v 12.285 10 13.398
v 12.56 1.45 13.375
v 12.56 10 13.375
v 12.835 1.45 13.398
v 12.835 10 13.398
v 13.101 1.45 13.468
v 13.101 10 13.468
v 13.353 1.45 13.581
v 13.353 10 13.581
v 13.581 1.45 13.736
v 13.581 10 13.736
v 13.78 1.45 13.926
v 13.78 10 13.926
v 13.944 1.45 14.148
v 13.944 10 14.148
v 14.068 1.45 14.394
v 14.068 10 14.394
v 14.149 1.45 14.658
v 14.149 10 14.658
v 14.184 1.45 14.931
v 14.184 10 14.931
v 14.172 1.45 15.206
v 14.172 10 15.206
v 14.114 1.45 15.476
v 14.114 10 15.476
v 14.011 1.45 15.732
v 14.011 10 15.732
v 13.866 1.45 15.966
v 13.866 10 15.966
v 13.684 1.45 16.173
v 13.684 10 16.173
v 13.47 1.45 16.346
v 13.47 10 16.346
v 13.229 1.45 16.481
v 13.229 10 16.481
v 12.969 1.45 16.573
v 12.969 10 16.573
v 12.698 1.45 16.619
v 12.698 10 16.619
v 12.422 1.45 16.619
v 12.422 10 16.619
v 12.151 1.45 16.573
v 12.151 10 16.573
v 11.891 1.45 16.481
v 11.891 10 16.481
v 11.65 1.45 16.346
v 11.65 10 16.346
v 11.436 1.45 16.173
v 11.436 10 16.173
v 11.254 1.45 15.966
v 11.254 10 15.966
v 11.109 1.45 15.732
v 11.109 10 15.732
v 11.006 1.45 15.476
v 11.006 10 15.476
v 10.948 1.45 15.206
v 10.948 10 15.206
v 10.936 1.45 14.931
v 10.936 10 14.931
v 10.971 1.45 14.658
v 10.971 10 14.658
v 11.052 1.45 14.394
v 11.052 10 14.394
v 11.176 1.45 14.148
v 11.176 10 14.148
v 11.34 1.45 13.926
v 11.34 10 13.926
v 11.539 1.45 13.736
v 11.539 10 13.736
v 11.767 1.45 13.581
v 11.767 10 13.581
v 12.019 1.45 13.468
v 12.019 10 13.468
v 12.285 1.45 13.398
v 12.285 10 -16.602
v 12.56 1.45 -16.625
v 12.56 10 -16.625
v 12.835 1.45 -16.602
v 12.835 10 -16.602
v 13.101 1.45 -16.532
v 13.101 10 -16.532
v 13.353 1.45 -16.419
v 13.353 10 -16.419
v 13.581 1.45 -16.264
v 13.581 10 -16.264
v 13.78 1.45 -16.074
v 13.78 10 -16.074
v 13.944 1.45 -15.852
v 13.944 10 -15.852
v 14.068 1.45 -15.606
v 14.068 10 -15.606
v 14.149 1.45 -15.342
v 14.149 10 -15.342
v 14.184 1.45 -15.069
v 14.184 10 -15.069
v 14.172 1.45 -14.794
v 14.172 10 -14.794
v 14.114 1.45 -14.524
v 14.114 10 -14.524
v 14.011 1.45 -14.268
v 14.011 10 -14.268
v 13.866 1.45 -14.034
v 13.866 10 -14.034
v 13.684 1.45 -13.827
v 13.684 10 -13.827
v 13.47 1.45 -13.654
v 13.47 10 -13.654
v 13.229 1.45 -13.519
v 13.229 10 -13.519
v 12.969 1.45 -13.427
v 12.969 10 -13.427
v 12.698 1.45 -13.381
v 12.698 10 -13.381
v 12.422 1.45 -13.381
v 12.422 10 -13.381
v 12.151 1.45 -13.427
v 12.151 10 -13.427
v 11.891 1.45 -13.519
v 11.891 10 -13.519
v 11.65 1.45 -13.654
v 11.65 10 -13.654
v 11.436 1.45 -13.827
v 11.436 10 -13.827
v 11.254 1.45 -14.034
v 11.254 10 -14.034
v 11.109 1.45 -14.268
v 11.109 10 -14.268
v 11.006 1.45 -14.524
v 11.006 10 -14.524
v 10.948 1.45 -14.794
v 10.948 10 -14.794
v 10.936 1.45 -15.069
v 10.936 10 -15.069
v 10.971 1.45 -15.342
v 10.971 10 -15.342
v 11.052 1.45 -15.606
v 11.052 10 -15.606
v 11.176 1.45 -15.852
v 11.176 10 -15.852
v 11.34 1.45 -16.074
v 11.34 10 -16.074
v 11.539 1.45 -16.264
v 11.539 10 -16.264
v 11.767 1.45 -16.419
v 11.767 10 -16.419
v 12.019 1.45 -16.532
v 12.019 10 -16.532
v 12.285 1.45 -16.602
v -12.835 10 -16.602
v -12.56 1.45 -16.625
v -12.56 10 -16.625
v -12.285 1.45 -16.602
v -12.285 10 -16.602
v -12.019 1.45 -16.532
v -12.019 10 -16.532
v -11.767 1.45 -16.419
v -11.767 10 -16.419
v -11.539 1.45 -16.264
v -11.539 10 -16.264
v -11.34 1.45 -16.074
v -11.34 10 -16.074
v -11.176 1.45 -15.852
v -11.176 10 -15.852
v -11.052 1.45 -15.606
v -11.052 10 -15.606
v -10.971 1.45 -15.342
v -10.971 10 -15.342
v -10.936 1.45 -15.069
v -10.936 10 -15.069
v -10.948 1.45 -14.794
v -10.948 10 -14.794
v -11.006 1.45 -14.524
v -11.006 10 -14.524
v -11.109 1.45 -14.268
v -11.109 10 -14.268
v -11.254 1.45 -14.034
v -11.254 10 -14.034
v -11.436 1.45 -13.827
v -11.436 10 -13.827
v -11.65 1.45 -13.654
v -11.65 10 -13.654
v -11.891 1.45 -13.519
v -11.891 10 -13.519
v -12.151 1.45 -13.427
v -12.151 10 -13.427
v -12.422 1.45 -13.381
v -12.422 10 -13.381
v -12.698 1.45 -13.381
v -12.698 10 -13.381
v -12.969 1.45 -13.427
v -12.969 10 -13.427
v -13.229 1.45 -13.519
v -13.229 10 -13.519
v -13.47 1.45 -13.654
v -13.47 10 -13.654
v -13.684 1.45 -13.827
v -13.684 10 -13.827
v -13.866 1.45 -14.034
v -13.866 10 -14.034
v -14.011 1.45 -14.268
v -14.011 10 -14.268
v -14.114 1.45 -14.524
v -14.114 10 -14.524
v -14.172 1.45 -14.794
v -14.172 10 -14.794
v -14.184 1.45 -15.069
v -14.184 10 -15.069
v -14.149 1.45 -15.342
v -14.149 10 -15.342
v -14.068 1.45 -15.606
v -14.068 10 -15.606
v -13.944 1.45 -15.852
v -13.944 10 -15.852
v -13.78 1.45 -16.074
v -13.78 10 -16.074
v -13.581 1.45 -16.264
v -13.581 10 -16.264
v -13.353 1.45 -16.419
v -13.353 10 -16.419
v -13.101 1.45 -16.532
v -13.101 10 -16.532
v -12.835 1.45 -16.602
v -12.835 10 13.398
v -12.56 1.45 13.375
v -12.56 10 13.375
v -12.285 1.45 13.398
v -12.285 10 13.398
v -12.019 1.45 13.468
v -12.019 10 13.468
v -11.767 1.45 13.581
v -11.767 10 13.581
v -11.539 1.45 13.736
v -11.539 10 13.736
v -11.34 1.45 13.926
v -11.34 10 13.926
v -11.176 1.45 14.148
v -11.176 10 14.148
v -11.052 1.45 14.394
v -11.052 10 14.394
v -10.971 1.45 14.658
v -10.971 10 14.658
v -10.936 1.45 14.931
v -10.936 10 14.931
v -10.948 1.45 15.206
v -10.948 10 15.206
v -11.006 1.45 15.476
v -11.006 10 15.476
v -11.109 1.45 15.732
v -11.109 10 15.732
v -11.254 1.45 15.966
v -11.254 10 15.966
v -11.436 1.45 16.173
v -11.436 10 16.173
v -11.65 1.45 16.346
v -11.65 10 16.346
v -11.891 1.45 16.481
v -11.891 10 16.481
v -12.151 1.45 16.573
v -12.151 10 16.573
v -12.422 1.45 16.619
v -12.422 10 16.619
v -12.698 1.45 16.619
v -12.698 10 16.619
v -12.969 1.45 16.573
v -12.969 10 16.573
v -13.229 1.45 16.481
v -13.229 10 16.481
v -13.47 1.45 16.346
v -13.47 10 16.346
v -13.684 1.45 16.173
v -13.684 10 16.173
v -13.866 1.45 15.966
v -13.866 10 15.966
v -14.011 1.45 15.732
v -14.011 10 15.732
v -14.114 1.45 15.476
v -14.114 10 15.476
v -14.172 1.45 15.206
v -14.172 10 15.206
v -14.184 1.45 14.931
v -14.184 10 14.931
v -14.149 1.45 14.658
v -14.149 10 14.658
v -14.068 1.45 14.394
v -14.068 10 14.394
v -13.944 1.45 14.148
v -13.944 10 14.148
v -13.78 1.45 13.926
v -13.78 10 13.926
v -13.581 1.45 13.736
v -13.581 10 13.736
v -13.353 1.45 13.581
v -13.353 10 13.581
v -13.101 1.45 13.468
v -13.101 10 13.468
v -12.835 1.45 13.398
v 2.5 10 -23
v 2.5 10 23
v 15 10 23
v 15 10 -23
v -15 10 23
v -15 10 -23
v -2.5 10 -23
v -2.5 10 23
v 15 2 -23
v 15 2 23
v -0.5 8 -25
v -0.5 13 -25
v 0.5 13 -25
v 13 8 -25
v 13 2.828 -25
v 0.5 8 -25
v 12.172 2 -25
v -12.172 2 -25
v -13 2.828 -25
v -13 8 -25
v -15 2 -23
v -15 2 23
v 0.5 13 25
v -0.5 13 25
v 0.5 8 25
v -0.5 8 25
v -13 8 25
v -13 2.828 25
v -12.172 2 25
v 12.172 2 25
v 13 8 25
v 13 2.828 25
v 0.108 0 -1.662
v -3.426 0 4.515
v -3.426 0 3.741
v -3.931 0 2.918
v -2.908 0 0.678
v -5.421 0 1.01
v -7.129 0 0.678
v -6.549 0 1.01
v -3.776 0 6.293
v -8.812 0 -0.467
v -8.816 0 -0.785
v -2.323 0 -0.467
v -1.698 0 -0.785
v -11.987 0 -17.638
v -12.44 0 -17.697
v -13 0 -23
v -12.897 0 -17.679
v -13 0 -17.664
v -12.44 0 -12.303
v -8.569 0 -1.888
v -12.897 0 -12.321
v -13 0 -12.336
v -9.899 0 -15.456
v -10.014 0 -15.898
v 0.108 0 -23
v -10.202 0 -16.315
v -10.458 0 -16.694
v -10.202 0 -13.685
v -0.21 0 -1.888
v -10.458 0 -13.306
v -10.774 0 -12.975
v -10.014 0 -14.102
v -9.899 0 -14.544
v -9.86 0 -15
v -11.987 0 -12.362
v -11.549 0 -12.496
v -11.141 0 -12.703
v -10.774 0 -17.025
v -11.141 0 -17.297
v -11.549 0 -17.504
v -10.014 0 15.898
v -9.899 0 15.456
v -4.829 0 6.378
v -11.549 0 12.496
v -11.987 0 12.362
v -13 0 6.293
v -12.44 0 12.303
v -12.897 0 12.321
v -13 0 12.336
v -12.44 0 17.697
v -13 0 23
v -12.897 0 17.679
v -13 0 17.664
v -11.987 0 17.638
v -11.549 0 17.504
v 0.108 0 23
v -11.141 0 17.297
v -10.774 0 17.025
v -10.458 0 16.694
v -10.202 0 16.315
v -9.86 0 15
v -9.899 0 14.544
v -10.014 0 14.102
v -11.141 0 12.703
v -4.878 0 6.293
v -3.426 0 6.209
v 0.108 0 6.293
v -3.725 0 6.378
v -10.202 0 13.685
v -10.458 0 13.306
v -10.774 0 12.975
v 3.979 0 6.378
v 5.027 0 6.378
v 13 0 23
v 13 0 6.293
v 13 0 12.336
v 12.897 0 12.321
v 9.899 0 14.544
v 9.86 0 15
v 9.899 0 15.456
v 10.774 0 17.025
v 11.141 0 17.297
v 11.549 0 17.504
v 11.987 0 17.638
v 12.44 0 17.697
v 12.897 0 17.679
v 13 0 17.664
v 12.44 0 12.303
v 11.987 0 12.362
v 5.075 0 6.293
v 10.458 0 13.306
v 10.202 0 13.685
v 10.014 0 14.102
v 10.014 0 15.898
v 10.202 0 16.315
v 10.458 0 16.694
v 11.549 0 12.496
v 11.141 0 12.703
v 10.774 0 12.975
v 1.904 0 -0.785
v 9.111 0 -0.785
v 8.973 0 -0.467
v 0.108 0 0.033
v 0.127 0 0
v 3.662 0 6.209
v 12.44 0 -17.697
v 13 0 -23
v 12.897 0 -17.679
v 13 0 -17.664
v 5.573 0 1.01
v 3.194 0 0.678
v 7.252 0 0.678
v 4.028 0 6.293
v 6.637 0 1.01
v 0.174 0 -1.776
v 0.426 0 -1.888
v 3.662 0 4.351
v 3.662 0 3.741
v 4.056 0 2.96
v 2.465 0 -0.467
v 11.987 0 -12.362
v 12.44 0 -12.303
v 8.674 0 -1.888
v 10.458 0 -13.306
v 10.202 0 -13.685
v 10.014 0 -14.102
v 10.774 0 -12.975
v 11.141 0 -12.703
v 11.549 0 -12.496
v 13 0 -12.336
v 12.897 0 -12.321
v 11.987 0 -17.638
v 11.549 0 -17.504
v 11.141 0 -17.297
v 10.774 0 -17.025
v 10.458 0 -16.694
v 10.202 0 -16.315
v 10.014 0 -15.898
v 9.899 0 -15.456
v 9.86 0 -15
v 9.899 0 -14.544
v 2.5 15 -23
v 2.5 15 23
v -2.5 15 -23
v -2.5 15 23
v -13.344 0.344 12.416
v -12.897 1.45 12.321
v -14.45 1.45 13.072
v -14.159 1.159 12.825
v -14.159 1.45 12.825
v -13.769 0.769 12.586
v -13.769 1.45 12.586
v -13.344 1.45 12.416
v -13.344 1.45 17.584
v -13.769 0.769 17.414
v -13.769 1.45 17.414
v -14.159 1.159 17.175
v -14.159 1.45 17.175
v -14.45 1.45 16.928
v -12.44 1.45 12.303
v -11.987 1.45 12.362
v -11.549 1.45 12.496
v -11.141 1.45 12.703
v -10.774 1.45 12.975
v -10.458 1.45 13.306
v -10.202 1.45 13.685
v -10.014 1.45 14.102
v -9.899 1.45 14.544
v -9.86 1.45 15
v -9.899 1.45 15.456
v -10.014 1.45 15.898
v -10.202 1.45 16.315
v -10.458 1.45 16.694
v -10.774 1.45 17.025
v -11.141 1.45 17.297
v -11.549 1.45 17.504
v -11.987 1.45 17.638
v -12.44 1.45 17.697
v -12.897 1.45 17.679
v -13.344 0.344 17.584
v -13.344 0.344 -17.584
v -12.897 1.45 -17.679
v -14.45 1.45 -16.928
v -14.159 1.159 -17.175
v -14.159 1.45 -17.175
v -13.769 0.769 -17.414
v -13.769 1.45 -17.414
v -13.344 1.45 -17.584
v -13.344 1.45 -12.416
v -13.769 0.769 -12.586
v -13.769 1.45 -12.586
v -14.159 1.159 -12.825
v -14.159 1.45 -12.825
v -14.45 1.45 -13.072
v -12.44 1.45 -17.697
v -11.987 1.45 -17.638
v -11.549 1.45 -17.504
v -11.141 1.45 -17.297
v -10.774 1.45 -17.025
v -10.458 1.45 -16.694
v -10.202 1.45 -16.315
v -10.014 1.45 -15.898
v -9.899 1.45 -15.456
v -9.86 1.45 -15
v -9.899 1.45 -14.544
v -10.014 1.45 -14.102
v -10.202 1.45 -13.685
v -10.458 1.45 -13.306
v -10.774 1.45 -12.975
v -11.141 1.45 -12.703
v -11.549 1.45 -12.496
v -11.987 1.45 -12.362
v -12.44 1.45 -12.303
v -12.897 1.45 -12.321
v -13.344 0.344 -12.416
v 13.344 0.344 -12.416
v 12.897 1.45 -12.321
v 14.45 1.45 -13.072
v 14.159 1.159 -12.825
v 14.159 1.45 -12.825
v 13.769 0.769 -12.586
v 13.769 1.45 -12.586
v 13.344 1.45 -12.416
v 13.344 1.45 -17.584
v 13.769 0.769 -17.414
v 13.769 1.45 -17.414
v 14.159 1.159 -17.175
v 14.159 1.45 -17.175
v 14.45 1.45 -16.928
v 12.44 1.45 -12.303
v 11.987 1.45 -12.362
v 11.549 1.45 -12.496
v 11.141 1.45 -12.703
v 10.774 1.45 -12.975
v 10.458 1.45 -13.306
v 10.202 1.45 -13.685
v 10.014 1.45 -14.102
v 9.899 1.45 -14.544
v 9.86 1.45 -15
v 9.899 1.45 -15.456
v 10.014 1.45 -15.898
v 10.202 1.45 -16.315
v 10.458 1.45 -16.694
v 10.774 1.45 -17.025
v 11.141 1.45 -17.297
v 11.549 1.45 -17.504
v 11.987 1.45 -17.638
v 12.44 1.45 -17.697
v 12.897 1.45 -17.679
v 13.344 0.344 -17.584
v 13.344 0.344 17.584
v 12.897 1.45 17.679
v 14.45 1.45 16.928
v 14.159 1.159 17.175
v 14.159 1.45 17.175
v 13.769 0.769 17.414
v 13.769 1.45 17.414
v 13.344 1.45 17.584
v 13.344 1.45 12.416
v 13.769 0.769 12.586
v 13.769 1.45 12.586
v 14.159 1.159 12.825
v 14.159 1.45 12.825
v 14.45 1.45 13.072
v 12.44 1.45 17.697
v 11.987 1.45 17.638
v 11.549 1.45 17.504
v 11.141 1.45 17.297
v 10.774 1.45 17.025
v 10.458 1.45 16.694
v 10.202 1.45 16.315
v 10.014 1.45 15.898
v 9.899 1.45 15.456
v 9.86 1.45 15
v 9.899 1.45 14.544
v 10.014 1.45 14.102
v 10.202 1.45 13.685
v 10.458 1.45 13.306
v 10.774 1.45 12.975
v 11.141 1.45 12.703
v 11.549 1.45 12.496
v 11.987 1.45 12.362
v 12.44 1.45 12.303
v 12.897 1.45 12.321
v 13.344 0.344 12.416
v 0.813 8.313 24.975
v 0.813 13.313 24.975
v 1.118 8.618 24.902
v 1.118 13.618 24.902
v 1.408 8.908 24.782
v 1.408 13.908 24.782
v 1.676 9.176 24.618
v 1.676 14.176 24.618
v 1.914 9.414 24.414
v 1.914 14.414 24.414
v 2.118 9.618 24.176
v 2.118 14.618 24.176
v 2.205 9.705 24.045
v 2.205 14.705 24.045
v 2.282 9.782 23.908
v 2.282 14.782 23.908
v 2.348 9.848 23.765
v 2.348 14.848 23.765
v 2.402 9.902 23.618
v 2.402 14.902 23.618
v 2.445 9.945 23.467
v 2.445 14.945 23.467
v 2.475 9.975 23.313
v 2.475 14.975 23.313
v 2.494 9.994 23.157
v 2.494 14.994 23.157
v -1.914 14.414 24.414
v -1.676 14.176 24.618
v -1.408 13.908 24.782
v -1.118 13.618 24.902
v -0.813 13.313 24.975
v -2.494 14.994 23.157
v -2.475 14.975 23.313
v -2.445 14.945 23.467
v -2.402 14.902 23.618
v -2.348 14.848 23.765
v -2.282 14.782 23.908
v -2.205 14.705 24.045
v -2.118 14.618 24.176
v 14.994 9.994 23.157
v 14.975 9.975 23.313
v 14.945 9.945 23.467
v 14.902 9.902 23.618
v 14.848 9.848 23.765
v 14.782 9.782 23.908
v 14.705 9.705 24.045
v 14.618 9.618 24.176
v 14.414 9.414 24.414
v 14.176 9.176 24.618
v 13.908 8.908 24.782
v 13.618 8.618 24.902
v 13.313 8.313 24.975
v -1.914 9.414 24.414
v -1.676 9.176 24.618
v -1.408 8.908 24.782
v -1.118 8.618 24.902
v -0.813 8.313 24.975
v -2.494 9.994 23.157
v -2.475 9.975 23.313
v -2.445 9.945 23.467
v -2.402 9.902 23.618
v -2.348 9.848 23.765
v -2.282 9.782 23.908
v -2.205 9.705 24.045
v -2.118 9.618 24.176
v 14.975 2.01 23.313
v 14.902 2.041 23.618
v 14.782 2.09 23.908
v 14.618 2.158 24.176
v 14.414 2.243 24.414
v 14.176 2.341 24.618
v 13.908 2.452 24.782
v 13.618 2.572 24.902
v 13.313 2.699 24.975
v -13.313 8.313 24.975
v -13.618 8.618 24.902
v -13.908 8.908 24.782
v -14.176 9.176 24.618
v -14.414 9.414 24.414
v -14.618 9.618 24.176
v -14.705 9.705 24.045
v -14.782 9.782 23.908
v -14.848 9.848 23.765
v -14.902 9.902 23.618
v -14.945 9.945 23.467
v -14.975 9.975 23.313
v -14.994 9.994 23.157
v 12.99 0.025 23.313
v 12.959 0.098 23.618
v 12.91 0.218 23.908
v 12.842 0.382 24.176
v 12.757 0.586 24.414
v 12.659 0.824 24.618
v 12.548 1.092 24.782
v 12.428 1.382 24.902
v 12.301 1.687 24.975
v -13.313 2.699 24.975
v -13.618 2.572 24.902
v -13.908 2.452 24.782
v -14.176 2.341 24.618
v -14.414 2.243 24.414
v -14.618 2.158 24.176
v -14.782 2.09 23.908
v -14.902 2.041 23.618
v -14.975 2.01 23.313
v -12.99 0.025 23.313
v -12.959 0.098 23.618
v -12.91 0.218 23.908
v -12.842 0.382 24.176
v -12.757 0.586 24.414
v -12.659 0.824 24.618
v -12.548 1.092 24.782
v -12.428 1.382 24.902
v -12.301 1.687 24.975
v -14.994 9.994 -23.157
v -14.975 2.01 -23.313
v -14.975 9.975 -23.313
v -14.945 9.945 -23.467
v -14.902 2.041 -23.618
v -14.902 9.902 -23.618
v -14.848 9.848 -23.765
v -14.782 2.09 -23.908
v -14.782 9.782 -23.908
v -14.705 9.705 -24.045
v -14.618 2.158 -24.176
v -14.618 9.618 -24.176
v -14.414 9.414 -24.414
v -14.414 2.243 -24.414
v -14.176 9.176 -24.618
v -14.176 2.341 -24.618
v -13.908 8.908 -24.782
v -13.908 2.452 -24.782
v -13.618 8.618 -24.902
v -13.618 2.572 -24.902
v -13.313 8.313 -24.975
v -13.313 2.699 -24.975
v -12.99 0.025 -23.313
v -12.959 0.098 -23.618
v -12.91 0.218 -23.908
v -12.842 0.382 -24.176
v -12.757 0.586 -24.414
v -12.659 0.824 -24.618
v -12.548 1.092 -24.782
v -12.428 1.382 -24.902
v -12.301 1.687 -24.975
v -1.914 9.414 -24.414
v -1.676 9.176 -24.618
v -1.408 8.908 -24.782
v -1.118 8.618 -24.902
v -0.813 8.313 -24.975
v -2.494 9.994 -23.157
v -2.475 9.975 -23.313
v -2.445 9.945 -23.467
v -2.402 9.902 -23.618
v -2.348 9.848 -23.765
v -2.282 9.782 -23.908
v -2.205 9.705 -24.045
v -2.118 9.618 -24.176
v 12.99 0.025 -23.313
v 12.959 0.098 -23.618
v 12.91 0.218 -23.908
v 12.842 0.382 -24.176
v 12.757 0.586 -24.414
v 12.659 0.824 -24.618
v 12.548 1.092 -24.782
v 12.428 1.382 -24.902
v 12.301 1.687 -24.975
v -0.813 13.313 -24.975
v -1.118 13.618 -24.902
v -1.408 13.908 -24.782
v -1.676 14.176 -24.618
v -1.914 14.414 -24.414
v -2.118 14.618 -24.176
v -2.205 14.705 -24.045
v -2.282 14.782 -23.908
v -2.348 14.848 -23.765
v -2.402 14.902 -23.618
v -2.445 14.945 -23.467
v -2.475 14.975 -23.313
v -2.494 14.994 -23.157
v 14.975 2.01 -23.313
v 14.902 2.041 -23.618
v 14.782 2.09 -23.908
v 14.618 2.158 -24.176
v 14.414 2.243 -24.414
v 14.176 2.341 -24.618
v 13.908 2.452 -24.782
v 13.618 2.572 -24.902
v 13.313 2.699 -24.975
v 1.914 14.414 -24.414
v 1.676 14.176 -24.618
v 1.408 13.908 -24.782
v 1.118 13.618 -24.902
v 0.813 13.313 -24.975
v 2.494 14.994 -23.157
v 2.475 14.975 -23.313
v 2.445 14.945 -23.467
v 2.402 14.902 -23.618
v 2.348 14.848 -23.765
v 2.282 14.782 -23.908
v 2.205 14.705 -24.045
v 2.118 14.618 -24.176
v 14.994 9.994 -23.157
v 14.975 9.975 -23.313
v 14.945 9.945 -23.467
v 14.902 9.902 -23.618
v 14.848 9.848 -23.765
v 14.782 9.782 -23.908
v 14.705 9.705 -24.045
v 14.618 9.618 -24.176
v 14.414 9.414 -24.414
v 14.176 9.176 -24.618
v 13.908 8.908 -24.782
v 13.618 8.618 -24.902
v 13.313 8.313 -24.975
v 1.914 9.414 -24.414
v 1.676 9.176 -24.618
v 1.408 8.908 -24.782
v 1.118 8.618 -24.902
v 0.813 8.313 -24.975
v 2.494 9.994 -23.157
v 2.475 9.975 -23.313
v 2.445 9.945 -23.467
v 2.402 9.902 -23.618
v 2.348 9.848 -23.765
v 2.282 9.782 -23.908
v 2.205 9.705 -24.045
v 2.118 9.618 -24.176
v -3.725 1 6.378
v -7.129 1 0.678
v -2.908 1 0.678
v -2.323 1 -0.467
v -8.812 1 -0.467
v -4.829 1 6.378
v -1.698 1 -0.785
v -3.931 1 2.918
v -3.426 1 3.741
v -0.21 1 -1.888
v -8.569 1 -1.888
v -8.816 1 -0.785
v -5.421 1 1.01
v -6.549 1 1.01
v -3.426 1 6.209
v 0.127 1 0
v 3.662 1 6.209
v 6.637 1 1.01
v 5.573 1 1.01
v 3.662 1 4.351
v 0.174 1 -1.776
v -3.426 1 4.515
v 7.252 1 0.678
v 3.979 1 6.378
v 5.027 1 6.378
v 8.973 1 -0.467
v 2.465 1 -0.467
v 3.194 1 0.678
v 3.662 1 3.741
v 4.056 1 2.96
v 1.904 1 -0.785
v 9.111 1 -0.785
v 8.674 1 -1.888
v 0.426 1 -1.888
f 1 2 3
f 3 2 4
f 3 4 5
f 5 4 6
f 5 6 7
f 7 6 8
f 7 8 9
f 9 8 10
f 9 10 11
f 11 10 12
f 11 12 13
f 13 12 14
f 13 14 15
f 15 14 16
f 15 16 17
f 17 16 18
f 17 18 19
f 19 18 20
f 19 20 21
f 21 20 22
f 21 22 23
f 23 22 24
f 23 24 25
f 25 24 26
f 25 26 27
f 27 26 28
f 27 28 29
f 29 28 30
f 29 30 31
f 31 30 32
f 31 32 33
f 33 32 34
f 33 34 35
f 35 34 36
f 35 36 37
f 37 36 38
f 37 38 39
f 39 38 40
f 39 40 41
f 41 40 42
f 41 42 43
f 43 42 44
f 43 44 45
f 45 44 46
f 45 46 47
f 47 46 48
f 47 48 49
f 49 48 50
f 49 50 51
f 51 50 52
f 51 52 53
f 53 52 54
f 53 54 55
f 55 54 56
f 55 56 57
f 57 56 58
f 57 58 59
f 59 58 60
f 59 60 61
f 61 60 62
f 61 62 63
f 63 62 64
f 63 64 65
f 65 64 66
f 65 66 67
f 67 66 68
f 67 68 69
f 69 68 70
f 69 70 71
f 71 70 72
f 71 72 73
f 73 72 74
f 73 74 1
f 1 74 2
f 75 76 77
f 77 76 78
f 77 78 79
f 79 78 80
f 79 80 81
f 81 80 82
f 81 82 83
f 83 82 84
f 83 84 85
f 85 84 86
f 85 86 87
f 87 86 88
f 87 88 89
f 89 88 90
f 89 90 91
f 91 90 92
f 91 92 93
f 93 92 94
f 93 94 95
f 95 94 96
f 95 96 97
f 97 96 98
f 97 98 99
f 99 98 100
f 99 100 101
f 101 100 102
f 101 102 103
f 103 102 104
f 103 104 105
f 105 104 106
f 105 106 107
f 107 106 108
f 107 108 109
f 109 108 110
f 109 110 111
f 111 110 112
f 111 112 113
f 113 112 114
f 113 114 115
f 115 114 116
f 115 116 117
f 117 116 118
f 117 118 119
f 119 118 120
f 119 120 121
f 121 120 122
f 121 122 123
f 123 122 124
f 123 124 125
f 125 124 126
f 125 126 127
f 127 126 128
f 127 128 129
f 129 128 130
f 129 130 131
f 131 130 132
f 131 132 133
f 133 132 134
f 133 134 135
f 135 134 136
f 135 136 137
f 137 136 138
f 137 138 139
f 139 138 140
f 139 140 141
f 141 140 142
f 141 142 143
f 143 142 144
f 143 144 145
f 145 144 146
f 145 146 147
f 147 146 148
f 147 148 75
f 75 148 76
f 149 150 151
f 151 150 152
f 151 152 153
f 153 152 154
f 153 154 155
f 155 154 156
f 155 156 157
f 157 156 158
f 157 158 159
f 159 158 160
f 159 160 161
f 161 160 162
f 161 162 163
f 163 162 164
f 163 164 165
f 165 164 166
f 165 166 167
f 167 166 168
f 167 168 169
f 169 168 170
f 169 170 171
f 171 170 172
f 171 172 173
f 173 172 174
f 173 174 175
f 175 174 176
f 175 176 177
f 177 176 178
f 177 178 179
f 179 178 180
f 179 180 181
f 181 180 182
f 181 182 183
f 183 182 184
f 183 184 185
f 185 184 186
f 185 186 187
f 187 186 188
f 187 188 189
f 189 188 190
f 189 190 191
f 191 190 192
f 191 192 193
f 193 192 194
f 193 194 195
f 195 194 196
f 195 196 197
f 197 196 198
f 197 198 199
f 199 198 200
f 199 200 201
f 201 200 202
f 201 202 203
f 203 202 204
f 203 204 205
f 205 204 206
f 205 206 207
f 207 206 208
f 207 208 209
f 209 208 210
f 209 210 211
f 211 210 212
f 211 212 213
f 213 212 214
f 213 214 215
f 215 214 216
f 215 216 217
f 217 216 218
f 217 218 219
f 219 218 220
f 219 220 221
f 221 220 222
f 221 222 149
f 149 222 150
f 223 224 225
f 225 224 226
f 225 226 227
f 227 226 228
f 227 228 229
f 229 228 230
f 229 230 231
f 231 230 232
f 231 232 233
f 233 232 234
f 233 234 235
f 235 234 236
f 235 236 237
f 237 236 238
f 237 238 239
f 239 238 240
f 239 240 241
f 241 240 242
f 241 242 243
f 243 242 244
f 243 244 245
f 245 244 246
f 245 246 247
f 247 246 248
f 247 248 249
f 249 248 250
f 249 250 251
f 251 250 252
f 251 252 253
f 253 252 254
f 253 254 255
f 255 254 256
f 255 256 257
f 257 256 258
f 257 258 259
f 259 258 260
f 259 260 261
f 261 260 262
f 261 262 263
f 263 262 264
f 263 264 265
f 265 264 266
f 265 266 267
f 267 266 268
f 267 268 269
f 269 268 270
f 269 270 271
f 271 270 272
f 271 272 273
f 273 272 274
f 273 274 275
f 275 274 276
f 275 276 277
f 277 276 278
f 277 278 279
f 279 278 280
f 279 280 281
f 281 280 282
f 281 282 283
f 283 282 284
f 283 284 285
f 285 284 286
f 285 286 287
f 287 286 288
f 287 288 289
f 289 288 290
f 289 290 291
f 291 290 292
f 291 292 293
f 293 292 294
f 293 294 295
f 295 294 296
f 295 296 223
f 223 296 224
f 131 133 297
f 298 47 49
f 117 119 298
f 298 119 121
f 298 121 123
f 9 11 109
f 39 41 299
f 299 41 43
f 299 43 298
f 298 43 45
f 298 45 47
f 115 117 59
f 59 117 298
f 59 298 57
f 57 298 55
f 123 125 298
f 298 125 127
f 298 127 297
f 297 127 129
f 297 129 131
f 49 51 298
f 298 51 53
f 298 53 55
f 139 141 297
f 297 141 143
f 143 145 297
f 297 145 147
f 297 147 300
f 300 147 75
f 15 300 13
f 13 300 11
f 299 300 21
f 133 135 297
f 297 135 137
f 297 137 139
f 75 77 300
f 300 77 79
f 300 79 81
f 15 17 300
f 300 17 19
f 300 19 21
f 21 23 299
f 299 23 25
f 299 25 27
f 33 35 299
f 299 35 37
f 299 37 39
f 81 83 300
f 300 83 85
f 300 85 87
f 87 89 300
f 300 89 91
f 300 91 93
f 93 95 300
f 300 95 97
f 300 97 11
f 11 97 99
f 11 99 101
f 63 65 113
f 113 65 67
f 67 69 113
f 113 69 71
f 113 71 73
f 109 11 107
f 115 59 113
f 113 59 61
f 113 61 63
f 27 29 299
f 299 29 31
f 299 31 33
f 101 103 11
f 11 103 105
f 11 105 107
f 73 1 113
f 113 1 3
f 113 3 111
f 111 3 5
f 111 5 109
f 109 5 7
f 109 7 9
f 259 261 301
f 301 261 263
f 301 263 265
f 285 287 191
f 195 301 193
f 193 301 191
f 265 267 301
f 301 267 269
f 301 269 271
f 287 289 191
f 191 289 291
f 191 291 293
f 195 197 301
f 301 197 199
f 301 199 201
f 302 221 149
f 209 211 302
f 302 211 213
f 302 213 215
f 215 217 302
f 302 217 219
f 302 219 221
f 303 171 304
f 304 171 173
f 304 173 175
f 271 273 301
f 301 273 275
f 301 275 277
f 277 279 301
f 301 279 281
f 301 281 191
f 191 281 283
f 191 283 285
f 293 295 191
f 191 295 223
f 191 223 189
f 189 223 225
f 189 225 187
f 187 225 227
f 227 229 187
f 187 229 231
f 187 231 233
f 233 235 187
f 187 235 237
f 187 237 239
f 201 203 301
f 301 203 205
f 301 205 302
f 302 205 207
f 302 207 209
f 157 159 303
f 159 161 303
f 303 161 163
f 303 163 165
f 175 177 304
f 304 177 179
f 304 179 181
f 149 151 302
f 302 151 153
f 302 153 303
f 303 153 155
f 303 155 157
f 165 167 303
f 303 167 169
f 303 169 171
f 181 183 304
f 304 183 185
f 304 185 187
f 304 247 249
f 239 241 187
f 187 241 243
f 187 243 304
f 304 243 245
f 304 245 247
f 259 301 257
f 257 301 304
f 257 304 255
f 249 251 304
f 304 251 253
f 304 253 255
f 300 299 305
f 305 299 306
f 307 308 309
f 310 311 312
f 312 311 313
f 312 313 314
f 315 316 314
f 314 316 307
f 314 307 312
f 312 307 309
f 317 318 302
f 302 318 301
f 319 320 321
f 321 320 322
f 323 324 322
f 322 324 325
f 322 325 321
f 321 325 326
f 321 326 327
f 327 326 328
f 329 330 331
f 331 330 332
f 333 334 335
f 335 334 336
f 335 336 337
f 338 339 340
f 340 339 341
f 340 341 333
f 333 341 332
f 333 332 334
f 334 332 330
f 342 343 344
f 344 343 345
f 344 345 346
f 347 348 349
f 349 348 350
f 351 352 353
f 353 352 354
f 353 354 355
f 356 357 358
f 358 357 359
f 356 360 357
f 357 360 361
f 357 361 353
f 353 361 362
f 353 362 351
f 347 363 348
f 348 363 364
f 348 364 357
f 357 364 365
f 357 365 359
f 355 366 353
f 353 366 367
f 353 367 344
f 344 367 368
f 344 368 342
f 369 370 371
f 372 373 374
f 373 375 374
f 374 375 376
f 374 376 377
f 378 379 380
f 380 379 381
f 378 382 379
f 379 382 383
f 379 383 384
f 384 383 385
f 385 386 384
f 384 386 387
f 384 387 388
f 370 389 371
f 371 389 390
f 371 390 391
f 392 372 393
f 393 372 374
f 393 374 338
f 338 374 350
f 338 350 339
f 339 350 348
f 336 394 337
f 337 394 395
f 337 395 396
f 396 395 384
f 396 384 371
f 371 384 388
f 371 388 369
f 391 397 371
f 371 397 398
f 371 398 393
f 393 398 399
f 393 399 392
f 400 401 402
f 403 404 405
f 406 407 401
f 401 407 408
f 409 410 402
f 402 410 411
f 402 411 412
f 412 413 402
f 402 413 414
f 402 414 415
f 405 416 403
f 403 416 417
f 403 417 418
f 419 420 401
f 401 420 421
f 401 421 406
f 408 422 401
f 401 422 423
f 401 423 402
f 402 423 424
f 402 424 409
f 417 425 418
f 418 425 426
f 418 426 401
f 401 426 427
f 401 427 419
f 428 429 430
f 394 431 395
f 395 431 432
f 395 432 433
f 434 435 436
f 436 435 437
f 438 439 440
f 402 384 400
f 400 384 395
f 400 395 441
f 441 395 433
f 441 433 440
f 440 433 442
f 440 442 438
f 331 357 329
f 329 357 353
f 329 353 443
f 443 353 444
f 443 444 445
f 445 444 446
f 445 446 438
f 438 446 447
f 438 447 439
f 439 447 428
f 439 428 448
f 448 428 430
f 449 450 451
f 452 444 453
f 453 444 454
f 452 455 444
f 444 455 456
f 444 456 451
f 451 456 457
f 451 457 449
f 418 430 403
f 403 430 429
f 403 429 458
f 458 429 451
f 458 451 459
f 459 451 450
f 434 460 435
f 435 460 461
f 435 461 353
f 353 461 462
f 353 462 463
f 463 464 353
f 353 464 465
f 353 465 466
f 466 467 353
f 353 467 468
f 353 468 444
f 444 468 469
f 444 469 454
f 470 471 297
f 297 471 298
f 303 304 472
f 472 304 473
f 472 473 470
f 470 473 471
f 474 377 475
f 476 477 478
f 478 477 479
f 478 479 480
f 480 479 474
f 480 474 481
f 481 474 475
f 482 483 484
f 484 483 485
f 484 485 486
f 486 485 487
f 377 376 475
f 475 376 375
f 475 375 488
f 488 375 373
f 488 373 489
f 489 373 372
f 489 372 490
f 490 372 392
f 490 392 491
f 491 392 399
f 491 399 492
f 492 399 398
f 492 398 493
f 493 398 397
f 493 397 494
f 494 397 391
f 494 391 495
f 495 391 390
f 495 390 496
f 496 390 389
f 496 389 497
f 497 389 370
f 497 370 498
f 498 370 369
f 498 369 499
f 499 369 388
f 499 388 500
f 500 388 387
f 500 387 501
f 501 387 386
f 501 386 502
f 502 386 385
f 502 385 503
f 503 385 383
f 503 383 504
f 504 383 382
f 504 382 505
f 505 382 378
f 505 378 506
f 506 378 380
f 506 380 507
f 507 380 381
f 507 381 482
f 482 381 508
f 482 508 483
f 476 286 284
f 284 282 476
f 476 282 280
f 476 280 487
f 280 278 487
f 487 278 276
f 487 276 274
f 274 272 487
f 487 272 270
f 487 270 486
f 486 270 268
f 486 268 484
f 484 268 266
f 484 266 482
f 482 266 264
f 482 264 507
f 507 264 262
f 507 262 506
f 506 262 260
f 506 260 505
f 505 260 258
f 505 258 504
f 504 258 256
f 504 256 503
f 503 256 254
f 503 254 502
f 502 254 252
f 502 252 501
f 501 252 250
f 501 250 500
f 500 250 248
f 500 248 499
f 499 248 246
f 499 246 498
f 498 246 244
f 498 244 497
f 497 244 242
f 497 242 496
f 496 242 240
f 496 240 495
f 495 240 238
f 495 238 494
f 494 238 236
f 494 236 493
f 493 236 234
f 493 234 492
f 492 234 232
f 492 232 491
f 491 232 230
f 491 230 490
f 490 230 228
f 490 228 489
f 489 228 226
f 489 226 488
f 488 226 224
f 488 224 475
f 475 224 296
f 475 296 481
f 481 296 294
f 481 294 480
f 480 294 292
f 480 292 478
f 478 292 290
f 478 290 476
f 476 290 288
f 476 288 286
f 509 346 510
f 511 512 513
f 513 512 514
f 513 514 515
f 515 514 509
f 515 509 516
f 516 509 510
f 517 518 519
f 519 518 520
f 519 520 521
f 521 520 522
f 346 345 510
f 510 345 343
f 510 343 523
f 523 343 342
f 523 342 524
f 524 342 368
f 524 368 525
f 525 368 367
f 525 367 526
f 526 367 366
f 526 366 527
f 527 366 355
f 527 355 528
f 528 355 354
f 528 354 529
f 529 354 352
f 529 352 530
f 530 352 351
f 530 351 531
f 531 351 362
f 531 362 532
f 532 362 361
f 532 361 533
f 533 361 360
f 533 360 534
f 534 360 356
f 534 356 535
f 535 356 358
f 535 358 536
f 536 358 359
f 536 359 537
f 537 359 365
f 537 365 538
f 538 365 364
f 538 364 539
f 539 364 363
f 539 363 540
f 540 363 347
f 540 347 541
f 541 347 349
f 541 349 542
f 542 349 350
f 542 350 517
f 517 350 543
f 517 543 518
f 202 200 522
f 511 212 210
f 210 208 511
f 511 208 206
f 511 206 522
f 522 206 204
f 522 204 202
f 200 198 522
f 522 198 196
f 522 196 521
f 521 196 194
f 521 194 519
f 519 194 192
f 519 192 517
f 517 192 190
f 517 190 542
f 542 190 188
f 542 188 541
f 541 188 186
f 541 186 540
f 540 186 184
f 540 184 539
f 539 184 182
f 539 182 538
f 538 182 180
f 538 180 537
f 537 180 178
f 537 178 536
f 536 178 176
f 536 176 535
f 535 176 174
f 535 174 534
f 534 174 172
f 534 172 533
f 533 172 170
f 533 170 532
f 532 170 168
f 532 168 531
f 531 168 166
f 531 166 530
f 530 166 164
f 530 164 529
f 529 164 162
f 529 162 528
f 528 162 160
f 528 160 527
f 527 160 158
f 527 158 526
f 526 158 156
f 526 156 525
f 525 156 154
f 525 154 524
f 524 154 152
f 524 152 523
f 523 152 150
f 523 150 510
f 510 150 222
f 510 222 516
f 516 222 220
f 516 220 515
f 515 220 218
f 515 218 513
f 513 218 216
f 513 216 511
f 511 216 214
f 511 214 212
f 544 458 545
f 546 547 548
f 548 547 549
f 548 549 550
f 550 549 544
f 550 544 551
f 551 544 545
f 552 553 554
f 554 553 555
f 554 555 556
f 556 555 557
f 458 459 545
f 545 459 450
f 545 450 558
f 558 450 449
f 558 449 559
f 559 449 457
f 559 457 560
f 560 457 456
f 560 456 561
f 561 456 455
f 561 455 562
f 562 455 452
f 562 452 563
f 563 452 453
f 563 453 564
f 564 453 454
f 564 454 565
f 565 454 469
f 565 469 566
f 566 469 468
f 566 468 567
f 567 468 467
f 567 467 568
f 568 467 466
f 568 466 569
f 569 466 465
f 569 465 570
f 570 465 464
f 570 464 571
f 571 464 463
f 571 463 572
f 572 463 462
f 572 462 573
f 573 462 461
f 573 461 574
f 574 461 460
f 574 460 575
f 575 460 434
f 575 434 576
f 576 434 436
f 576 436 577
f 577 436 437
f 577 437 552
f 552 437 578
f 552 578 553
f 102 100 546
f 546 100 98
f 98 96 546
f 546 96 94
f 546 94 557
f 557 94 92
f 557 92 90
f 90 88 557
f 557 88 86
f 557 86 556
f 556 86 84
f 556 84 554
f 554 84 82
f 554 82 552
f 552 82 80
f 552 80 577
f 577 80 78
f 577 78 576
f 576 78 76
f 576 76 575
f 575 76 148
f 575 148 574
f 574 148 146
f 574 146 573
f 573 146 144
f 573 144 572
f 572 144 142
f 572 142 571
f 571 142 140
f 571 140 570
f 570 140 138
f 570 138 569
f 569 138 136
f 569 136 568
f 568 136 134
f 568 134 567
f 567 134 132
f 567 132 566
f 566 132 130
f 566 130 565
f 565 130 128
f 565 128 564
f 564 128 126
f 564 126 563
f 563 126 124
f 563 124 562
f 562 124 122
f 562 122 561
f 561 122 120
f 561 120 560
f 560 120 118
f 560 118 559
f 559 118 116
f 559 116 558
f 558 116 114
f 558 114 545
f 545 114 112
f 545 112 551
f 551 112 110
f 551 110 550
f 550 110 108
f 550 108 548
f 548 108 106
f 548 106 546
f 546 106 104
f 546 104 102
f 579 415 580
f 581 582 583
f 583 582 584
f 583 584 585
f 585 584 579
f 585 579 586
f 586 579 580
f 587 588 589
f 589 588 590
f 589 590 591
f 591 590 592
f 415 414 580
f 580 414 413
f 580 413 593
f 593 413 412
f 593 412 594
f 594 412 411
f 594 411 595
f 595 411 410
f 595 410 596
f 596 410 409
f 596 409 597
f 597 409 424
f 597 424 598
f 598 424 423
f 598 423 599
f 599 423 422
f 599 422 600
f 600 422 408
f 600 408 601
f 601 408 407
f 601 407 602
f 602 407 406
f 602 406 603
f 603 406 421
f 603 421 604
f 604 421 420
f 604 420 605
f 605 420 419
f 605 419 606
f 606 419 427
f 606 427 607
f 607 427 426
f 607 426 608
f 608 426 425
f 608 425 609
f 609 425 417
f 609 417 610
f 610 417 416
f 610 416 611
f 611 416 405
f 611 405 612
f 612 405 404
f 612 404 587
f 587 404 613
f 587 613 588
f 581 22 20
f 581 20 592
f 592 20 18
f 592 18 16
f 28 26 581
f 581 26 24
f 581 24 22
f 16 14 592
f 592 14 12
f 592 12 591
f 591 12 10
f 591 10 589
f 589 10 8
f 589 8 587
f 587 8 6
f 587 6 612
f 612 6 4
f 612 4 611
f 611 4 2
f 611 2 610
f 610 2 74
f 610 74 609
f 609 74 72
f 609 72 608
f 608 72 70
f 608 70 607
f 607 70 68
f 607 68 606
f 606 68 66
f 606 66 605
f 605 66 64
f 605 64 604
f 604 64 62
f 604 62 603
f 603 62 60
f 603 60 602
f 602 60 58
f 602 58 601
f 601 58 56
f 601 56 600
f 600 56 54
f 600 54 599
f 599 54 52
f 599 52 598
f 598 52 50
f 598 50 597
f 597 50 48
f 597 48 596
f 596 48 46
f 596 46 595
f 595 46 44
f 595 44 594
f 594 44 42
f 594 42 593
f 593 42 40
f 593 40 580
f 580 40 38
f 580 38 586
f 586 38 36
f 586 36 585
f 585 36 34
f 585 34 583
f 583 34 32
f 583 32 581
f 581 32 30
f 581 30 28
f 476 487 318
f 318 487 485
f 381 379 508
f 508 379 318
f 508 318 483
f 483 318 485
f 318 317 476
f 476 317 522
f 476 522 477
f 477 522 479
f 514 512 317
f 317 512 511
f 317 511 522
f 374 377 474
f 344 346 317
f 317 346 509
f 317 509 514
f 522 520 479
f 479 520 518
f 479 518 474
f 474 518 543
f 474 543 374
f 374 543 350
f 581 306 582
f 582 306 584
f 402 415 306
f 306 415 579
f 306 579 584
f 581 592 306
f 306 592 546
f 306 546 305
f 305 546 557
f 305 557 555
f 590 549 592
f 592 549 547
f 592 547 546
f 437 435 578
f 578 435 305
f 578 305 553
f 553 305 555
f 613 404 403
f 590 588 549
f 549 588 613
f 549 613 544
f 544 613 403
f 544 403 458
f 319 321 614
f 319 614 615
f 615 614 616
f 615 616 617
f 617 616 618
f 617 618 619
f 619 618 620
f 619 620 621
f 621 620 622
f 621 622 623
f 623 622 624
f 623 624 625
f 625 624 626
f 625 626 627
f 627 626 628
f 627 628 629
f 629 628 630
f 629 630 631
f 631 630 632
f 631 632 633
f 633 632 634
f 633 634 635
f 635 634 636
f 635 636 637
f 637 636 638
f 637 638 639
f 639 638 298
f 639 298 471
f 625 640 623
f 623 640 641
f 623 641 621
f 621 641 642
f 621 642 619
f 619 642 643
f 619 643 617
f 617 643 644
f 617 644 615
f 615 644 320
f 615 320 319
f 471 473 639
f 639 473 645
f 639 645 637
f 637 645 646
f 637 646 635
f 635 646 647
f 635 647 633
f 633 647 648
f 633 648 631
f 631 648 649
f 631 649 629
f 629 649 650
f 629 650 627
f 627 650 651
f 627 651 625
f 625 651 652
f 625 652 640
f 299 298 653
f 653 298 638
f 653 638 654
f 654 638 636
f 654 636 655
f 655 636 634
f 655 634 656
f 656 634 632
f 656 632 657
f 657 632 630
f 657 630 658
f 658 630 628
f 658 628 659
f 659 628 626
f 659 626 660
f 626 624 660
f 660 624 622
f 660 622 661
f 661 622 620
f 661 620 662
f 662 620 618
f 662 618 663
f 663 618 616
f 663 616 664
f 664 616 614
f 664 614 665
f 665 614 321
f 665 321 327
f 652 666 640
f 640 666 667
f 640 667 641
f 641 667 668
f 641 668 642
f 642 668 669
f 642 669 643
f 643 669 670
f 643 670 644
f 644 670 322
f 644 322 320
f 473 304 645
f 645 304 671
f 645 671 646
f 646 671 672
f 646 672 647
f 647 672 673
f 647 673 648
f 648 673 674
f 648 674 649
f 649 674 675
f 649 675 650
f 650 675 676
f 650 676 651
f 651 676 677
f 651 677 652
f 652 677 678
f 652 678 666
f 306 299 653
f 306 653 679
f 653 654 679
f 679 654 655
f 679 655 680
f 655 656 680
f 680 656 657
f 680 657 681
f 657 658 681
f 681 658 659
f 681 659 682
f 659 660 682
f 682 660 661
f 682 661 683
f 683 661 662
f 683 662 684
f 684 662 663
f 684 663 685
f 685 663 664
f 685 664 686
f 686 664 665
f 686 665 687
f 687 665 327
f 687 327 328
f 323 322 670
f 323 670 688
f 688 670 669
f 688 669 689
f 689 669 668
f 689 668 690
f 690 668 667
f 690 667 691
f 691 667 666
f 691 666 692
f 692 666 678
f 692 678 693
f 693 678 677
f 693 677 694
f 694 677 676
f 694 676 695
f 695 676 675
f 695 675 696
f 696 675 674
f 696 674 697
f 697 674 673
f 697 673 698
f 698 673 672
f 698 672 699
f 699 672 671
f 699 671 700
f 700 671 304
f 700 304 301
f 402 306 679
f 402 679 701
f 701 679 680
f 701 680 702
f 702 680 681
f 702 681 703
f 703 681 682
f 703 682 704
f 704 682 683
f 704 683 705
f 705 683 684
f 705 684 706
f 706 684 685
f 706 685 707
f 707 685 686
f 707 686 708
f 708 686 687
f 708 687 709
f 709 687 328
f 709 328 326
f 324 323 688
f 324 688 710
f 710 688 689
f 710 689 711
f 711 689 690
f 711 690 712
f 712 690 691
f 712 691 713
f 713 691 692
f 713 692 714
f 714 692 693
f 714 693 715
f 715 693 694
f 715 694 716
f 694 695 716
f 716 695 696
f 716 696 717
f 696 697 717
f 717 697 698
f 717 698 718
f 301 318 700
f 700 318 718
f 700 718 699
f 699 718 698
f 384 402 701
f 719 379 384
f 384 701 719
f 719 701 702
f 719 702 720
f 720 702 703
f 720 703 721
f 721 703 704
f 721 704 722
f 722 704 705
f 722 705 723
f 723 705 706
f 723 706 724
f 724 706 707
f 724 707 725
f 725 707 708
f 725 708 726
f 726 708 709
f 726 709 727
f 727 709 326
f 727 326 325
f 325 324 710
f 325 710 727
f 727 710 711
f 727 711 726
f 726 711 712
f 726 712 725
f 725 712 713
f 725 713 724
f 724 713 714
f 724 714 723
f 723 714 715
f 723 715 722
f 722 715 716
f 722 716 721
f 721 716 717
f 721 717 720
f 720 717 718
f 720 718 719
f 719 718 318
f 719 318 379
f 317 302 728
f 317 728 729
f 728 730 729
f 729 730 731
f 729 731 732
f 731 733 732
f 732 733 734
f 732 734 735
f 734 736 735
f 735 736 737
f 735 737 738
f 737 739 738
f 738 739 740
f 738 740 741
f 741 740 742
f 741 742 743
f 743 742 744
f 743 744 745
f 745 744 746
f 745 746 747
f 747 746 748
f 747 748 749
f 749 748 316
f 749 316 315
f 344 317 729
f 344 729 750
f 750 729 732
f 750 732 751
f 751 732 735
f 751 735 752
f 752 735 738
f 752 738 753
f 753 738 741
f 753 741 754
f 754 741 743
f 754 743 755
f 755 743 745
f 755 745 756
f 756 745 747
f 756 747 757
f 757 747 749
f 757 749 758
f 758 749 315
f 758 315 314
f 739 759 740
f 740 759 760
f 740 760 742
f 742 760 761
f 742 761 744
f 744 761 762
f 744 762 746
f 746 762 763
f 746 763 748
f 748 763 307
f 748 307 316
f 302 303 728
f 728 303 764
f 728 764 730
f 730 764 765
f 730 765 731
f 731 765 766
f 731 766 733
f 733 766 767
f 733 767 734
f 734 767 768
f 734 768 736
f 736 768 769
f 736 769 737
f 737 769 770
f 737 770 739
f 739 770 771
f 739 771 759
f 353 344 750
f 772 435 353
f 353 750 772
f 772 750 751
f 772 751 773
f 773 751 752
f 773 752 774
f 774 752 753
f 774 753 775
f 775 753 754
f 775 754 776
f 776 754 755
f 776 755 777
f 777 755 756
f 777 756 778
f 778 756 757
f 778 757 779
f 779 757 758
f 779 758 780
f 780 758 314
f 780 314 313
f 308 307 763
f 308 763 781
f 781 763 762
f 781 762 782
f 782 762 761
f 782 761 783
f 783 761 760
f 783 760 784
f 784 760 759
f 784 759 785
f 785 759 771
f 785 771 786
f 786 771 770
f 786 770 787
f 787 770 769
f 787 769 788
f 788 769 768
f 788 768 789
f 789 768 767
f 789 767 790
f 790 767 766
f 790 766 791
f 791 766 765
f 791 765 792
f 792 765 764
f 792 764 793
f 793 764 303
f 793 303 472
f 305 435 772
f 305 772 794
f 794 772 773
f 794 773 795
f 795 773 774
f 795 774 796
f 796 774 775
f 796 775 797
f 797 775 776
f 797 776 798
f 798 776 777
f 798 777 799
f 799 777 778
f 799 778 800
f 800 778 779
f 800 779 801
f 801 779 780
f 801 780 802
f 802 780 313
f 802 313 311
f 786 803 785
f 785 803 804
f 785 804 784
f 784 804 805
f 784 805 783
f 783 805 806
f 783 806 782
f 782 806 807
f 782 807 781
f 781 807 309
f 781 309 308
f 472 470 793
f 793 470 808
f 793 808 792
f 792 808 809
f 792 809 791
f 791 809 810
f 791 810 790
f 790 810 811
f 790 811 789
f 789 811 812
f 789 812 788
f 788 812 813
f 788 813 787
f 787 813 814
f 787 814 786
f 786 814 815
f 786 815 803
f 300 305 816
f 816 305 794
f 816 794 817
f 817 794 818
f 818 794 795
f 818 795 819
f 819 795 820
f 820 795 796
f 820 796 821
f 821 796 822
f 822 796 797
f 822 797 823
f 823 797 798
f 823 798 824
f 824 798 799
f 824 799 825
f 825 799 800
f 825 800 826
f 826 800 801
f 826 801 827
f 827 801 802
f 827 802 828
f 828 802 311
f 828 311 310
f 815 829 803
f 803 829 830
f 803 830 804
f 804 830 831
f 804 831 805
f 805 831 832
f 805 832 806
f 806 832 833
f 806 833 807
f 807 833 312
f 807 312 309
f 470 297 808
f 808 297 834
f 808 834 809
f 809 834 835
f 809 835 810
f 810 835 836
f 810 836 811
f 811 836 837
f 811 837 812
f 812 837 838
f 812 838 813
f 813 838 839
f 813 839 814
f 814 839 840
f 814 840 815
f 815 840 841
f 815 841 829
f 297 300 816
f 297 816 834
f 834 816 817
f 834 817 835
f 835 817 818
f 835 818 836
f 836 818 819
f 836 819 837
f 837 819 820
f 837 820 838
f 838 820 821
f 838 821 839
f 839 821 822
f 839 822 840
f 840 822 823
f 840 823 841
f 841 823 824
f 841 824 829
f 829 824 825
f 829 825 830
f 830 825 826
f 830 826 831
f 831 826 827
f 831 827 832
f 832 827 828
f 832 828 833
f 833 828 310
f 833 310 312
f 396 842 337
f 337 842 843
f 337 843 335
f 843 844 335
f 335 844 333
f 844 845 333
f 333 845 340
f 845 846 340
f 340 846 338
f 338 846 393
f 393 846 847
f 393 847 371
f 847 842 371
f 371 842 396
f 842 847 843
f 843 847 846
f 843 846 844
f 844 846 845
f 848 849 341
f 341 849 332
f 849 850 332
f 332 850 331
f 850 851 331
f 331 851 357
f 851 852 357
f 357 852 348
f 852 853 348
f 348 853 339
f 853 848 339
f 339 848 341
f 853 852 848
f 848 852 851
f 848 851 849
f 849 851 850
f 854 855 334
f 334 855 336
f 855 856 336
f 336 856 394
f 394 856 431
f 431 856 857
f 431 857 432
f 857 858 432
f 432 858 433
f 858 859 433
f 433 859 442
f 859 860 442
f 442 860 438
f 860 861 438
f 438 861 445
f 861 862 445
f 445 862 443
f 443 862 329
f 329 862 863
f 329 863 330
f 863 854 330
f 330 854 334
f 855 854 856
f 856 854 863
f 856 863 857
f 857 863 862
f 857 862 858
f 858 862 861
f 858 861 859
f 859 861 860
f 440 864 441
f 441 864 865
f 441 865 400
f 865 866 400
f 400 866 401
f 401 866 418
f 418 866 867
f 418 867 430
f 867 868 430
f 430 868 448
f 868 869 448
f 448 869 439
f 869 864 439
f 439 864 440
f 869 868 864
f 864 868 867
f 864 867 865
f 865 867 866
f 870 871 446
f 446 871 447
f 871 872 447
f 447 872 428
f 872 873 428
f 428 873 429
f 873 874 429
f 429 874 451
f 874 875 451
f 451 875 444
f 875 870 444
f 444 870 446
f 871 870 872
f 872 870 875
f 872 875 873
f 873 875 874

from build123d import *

# Parameters (mm, degrees)
SKETCH1_W           = 30
SKETCH1_H           = 50
BOSS_EXTRUDE1_DEPTH = 10
SKETCH2_W           = 5
SKETCH2_H           = 50
BOSS_EXTRUDE2_DEPTH = 5
SKETCH3_R           = 1.625
CUT_EXTRUDE1_DEPTH  = 33.787192622
SKETCH4_R           = 2.7
CUT_EXTRUDE2_DEPTH  = 1.45
CHAMFER1_SIZE       = 2
CHAMFER2_SIZE       = 2
FILLET1_R           = 2
FILLET2_R           = 2
CUT_EXTRUDE6_DEPTH  = 1


with BuildPart() as part:
    # Sketch1 → Boss-Extrude1 (new body)
    with BuildSketch(Plane(origin=(0, 0, 0), x_dir=(1, 0, 0), z_dir=(0, 1, 0))):
        Rectangle(SKETCH1_W, SKETCH1_H)
    extrude(amount=BOSS_EXTRUDE1_DEPTH)

    # Sketch2 → Boss-Extrude2 (add)
    with BuildSketch(Plane(origin=(0, 10, 0), x_dir=(1, 0, 0), z_dir=(0, 1, 0))):
        Rectangle(SKETCH2_W, SKETCH2_H)
    extrude(amount=BOSS_EXTRUDE2_DEPTH)

    # Sketch3 → Cut-Extrude1 (cut, through all)
    with BuildSketch(Plane.XZ):
        with Locations(Location((-12.56, 15, 0), (0, 0, 270))):
            Circle(SKETCH3_R)
        with Locations(Location((-12.56, -15, 0), (0, 0, 270))):
            Circle(SKETCH3_R)
        with Locations(Location((12.56, -15, 0), (0, 0, 270))):
            Circle(SKETCH3_R)
        with Locations(Location((12.56, 15, 0), (0, 0, 270))):
            Circle(SKETCH3_R)
    extrude(amount=-CUT_EXTRUDE1_DEPTH, mode=Mode.SUBTRACT)

    # Sketch4 → Cut-Extrude2 (cut)
    with BuildSketch(Plane.XZ):
        with Locations((-12.56, 15)):
            Circle(SKETCH4_R)
        with Locations((-12.56, -15)):
            Circle(SKETCH4_R)
        with Locations((12.56, -15)):
            Circle(SKETCH4_R)
        with Locations((12.56, 15)):
            Circle(SKETCH4_R)
    extrude(amount=-CUT_EXTRUDE2_DEPTH, mode=Mode.SUBTRACT)

    # Chamfer1
    # the kernel refuses this chamfer: 2 mm, written as the material it takes off along each edge
    with BuildSketch(Plane(origin=(-15, 0, -30.143365976), x_dir=(0.9996219169112968, -0.027495876610586365, 0), z_dir=(0, 0, 1)), Plane(origin=(-15, 0, 11.012661705), x_dir=(0.9996219169112968, -0.027495876610586365, 0), z_dir=(0, 0, 1))) as chamfer1_piece_1:
        Polygon((CHAMFER1_SIZE * 0.999621916911, CHAMFER1_SIZE * 0.0274958766106), (-CHAMFER1_SIZE * 0.0274958766106, CHAMFER1_SIZE * 0.999621916911), (0, 0), align=None)
    extrude(amount=19.130704271, mode=Mode.SUBTRACT)
    with BuildSketch(Plane(origin=(-15, 0, -18.987338295), x_dir=(0.9996219169112968, -0.027495876610586365, 0), z_dir=(0, 0, 1))) as chamfer1_piece_2:
        Polygon((CHAMFER1_SIZE * 0.999621916911, CHAMFER1_SIZE * 0.0274958766106), (-CHAMFER1_SIZE * 0.0274958766106, CHAMFER1_SIZE * 0.999621916911), (0, 0), align=None)
    extrude(amount=37.974676589, mode=Mode.SUBTRACT)

    # Chamfer2
    # the kernel refuses this chamfer: 2 mm, written as the material it takes off along each edge
    with BuildSketch(Plane(origin=(15, 0, 30.143365976), x_dir=(0.027495876610586494, 0.9996219169112968, 0), z_dir=(0, 0, -1)), Plane(origin=(15, 0, -11.012661705), x_dir=(0.027495876610586494, 0.9996219169112968, 0), z_dir=(0, 0, -1))) as chamfer2_piece_1:
        Polygon((CHAMFER2_SIZE * 0.999621916911, -CHAMFER2_SIZE * 0.0274958766106), (-CHAMFER2_SIZE * 0.0274958766106, -CHAMFER2_SIZE * 0.999621916911), (0, 0), align=None)
    extrude(amount=19.130704271, mode=Mode.SUBTRACT)
    with BuildSketch(Plane(origin=(15, 0, 18.987338295), x_dir=(0.027495876610586494, 0.9996219169112968, 0), z_dir=(0, 0, -1))) as chamfer2_piece_2:
        Polygon((CHAMFER2_SIZE * 0.999621916911, -CHAMFER2_SIZE * 0.0274958766106), (-CHAMFER2_SIZE * 0.0274958766106, -CHAMFER2_SIZE * 0.999621916911), (0, 0), align=None)
    extrude(amount=37.974676589, mode=Mode.SUBTRACT)

    # Fillet1
    fillet1_edges = [part.edges().sort_by_distance(p)[0] for p in [
        (-14, 1, 25),
        (-15, 6, 25),
        (-8.75, 10, 25),
        (-2.5, 12.5, 25),
        (0, 15, 25),
        (2.5, 12.5, 25),
        (8.75, 10, 25),
        (15, 6, 25),
        (14, 1, 25),
        (0, 0, 25),
    ]]
    fillet(fillet1_edges, radius=FILLET1_R)

    # Fillet2
    fillet2_edges = [part.edges().sort_by_distance(p)[0] for p in [
        (8.75, 10, -25),
        (2.5, 12.5, -25),
        (0, 15, -25),
        (-2.5, 12.5, -25),
        (-8.75, 10, -25),
        (-15, 6, -25),
        (-14, 1, -25),
        (0, 0, -25),
        (14, 1, -25),
        (15, 6, -25),
    ]]
    fillet(fillet2_edges, radius=FILLET2_R)

    # Mobious Logo → Cut-Extrude6 (cut)
    with BuildSketch(Plane.XZ):
        Polygon((-3.725461883, 6.377557531), (-4.828839221, 6.377557531), (-8.812218423, -0.467122224), (-2.322863572, -0.467122224), (-2.907811009, 0.678144172), (-7.12910045, 0.678144172), align=None)
        Polygon((-3.931176302, 2.917815032), (-3.42624091, 3.740672707), (-0.209615451, -1.888421846), (-8.569101382, -1.888421846), (-8.816410096, -0.785044508), (-1.698296177, -0.785044508), align=None)
        Polygon((-6.549359815, 1.01028133), (-3.42624091, 6.209245734), (0.127008143, 0), (3.661555886, 6.209245734), (6.636670117, 1.01028133), (5.573474433, 1.01028133), (3.661555886, 4.351328327), (0.173638389, -1.77600066), (-3.42624091, 4.514730681), (-5.421111797, 1.01028133), align=None)
        Polygon((3.97947817, 6.377557531), (5.026751575, 6.377557531), (8.972728155, -0.467122224), (2.464671994, -0.467122224), (3.194023116, 0.678144172), (7.252207561, 0.678144172), align=None)
        Polygon((3.661555886, 3.740672707), (0.426229116, -1.888421846), (8.673507182, -1.888421846), (9.111053368, -0.785044508), (1.90363267, -0.785044508), (4.055998695, 2.959823548), align=None)
    extrude(amount=-CUT_EXTRUDE6_DEPTH, mode=Mode.SUBTRACT)


solid = part.part
